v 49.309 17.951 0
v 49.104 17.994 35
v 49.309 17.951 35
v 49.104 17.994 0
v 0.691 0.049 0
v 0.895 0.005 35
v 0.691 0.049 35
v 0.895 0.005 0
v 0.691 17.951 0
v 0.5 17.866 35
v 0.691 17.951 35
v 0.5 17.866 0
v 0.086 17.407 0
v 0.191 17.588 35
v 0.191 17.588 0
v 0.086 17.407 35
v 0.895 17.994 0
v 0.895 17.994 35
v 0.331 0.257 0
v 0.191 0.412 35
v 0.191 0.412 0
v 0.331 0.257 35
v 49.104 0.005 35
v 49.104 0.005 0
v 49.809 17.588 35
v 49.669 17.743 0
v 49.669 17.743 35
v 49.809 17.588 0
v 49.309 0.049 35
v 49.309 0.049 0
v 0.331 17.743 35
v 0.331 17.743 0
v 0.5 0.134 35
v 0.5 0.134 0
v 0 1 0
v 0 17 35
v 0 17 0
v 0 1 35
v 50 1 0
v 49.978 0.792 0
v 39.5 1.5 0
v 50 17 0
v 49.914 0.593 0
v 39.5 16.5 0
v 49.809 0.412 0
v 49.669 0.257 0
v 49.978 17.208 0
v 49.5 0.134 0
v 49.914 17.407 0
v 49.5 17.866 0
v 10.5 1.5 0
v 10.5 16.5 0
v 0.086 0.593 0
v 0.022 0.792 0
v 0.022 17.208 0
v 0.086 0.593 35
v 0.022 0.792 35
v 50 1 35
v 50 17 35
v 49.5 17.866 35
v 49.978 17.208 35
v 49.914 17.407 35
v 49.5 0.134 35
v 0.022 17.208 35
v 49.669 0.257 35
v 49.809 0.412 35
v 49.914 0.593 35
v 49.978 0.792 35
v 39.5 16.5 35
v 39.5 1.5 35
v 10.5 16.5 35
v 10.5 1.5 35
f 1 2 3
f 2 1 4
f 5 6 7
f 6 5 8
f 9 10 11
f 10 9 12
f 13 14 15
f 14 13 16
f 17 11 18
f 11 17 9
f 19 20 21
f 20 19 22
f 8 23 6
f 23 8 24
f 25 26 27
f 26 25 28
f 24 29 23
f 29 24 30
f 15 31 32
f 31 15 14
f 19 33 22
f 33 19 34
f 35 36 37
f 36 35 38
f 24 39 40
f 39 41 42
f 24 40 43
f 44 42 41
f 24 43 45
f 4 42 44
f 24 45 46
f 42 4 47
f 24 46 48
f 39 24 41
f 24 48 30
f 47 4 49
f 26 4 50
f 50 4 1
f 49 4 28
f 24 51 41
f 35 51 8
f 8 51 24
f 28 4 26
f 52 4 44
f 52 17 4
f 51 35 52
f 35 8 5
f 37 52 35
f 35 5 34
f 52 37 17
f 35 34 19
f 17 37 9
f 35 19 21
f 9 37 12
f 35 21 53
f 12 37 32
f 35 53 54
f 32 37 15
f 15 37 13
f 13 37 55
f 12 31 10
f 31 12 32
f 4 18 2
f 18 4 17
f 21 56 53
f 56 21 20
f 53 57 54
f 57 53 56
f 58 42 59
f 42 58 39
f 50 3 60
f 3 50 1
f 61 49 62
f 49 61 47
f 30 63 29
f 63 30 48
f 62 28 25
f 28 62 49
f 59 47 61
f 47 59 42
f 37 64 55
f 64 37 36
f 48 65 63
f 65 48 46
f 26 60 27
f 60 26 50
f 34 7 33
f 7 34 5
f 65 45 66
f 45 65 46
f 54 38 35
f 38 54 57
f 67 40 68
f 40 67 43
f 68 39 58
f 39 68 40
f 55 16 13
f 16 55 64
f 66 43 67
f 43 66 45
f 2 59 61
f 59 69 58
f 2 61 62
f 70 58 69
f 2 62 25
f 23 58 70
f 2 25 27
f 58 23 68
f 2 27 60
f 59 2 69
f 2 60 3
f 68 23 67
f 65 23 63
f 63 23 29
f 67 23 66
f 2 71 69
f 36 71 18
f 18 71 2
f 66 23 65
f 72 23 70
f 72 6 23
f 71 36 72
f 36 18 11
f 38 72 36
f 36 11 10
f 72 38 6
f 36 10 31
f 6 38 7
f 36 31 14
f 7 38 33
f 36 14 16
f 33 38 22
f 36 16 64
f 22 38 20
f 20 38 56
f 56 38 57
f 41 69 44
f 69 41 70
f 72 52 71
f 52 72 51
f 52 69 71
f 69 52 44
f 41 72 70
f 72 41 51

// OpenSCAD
$fn=30;

difference() {
   // cube([50,30,18]);
   hull() {
   translate([1,17,0]) cylinder(r=1,h=35);
   translate([1,1,0]) cylinder(r=1,h=35);
   translate([49,17,0]) cylinder(r=1,h=35);
   translate([49,1,0]) cylinder(r=1,h=35);
   }
   translate([(50-29)/2,(18-15)/2,-0.5]) cube([29,15,35+1]);
}
